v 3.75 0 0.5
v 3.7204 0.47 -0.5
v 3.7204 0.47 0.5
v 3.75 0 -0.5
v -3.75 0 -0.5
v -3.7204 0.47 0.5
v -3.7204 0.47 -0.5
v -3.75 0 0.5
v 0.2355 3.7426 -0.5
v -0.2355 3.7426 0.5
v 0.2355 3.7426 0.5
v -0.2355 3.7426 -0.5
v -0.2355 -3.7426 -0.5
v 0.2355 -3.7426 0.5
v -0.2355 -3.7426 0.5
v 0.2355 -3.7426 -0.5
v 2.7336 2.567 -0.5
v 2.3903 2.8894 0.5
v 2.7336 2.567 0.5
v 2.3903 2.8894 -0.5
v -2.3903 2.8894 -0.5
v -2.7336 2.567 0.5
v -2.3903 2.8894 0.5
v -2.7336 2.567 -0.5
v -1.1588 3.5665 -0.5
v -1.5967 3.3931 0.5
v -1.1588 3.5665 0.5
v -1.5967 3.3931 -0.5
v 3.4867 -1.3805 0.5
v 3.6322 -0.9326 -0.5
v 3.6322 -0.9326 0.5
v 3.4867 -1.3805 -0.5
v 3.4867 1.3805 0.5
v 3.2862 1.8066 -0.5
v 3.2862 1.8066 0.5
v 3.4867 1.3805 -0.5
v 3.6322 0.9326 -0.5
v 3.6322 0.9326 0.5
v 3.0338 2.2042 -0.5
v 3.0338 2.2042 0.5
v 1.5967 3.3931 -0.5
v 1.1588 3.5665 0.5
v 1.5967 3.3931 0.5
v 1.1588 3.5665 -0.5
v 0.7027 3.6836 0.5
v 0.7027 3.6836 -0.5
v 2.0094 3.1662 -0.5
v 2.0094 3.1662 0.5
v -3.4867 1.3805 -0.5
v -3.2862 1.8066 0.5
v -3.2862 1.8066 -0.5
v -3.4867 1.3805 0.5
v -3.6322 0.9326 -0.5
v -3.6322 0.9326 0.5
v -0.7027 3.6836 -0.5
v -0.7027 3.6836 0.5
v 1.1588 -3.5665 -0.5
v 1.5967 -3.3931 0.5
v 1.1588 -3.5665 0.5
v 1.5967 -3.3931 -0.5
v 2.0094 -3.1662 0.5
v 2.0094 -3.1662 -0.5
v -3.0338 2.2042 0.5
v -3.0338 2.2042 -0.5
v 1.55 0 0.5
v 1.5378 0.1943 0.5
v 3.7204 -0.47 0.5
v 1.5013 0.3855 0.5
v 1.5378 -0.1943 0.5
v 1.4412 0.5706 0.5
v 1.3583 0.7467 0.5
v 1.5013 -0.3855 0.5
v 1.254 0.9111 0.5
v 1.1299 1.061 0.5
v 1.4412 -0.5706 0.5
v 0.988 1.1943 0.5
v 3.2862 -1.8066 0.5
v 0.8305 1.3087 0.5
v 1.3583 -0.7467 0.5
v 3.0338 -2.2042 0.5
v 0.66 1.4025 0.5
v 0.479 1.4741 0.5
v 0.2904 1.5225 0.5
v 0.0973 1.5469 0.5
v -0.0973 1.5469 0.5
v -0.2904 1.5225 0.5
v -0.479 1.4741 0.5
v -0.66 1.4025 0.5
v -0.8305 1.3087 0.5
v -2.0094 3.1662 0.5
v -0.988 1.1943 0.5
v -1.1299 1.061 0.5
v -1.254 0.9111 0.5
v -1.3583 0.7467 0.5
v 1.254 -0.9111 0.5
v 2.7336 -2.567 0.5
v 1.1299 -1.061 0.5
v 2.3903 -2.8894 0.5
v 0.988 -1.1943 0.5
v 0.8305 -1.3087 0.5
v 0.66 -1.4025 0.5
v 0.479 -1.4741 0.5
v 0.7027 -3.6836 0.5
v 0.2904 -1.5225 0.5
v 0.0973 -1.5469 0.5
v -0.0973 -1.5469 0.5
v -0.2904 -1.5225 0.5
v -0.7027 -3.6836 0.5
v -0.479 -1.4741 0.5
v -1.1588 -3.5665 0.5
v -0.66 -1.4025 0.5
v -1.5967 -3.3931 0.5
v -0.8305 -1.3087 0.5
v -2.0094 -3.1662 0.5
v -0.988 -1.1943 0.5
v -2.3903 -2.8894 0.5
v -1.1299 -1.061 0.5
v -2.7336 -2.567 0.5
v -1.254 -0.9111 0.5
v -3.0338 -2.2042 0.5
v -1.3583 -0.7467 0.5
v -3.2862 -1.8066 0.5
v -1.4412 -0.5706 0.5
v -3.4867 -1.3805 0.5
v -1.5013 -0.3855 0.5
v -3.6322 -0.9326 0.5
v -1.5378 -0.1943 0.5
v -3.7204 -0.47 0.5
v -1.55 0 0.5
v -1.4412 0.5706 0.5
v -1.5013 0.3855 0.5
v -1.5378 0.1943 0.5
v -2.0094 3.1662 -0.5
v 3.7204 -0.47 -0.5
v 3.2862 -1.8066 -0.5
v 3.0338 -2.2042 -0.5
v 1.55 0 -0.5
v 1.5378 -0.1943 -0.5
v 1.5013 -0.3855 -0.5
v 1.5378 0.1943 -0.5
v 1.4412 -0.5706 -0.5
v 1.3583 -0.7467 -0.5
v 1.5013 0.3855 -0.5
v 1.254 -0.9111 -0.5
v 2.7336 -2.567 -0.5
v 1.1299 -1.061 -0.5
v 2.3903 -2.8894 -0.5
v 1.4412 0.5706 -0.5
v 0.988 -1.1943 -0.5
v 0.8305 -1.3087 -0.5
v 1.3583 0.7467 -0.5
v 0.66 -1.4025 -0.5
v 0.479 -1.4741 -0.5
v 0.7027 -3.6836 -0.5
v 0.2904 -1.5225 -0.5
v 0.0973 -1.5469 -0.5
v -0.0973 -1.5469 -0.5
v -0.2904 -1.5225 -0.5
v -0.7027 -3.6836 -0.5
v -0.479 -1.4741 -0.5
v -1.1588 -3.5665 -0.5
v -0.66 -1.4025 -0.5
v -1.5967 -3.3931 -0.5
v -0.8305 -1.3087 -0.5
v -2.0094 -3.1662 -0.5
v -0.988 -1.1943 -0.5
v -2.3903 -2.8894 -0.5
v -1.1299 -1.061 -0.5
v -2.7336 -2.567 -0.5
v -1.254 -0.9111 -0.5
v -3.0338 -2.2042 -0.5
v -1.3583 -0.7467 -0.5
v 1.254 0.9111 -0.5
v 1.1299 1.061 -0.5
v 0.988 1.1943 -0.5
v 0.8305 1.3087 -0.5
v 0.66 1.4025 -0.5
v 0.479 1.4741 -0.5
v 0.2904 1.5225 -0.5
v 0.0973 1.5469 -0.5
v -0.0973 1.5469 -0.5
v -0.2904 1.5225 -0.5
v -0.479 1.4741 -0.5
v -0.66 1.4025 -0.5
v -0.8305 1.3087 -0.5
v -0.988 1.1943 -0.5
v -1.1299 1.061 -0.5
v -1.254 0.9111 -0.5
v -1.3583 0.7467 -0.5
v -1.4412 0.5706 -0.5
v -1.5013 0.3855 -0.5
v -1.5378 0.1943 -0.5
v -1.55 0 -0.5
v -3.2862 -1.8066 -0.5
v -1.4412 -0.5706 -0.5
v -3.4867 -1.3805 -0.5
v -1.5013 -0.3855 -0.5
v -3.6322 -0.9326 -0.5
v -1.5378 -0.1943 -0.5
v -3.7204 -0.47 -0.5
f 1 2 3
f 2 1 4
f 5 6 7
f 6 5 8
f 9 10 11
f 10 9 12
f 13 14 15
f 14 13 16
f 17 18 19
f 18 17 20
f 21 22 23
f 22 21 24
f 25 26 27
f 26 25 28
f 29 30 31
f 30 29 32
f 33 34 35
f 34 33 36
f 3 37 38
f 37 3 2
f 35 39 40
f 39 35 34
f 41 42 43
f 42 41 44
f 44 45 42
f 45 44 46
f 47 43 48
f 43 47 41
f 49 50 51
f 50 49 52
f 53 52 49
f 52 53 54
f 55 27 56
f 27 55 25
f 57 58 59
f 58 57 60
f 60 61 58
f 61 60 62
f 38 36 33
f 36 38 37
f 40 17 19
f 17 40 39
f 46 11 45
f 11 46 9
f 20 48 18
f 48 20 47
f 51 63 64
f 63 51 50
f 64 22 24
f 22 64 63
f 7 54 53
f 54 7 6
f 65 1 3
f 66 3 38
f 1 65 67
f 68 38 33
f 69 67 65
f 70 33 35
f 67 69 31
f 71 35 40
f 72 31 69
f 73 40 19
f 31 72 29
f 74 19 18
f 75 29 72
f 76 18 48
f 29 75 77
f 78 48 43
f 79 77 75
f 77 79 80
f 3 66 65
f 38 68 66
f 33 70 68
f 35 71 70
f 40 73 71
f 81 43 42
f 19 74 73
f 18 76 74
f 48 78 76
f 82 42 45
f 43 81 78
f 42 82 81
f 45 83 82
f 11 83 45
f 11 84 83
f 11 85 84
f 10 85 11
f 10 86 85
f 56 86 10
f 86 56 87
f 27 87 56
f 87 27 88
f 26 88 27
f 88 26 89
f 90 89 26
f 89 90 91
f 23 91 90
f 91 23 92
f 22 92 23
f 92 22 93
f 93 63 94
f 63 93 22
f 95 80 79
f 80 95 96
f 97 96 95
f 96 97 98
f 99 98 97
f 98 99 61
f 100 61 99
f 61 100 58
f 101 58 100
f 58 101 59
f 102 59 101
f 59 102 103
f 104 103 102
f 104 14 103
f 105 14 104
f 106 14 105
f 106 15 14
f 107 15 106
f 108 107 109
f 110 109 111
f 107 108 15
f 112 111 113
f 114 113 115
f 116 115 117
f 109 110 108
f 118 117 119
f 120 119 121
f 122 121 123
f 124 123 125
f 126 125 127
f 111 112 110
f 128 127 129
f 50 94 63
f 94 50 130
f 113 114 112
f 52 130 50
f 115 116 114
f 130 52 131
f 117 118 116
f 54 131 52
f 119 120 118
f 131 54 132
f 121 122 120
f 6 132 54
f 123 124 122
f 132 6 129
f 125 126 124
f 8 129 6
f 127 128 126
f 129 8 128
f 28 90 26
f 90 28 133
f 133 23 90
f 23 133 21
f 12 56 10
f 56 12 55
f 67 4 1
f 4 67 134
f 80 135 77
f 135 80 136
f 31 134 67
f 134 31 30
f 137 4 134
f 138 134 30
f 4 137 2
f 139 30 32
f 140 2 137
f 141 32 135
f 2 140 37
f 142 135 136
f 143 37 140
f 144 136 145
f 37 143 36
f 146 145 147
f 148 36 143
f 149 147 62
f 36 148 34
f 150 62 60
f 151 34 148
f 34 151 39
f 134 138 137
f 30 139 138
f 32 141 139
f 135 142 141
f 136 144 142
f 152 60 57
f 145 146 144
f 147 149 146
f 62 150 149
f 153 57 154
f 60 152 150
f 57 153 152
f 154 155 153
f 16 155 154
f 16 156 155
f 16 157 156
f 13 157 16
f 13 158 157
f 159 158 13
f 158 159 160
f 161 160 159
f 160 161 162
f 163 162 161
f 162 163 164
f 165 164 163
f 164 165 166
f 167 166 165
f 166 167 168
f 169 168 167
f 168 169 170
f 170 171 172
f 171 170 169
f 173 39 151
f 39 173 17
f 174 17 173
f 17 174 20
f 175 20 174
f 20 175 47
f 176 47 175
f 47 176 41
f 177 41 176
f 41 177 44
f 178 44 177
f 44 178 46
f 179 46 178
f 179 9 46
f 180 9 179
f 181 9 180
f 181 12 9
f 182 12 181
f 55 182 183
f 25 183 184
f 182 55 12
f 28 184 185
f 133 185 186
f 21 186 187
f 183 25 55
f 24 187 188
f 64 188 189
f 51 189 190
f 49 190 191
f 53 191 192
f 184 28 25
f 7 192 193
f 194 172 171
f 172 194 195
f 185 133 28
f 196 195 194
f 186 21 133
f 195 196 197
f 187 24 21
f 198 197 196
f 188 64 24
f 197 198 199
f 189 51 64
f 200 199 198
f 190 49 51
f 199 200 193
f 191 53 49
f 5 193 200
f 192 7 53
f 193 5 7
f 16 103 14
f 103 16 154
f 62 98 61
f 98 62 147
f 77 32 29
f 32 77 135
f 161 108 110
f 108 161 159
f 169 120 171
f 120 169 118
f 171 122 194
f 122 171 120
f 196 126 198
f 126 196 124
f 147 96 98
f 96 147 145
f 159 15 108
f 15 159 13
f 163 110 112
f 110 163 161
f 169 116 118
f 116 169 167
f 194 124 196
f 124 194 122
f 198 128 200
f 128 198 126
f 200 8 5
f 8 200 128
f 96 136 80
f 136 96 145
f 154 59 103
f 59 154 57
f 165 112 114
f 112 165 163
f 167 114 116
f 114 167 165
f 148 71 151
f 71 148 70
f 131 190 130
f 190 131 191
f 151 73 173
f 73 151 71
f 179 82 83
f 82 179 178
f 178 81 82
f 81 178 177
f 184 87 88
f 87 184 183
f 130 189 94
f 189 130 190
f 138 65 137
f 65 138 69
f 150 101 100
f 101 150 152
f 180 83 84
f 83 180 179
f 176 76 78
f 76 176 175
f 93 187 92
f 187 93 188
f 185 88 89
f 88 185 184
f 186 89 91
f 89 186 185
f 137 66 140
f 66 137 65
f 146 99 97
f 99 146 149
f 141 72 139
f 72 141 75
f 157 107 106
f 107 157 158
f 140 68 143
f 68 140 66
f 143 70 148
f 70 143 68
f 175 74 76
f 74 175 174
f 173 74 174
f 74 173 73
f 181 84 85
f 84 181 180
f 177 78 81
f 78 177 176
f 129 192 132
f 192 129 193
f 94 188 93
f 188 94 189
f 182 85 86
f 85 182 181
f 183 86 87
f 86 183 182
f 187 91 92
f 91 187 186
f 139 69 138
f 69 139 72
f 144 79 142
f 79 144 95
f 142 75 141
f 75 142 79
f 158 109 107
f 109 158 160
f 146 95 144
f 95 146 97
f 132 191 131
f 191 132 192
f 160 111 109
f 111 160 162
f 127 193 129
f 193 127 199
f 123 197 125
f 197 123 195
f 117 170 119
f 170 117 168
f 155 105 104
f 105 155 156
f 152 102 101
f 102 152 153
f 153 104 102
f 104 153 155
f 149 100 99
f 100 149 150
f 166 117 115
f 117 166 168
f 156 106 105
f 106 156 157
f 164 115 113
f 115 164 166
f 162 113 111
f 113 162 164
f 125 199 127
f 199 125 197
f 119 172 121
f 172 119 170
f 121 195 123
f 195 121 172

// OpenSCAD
$fn = 50;


difference() {
	union() {
		translate(v = [0, 0, -0.5000000000]) {
			cylinder(h = 1, r = 3.7500000000);
		}
	}
	union() {
		translate(v = [0, 0, -100.0000000000]) {
			cylinder(h = 200, r = 1.5500000000);
		}
	}
}
